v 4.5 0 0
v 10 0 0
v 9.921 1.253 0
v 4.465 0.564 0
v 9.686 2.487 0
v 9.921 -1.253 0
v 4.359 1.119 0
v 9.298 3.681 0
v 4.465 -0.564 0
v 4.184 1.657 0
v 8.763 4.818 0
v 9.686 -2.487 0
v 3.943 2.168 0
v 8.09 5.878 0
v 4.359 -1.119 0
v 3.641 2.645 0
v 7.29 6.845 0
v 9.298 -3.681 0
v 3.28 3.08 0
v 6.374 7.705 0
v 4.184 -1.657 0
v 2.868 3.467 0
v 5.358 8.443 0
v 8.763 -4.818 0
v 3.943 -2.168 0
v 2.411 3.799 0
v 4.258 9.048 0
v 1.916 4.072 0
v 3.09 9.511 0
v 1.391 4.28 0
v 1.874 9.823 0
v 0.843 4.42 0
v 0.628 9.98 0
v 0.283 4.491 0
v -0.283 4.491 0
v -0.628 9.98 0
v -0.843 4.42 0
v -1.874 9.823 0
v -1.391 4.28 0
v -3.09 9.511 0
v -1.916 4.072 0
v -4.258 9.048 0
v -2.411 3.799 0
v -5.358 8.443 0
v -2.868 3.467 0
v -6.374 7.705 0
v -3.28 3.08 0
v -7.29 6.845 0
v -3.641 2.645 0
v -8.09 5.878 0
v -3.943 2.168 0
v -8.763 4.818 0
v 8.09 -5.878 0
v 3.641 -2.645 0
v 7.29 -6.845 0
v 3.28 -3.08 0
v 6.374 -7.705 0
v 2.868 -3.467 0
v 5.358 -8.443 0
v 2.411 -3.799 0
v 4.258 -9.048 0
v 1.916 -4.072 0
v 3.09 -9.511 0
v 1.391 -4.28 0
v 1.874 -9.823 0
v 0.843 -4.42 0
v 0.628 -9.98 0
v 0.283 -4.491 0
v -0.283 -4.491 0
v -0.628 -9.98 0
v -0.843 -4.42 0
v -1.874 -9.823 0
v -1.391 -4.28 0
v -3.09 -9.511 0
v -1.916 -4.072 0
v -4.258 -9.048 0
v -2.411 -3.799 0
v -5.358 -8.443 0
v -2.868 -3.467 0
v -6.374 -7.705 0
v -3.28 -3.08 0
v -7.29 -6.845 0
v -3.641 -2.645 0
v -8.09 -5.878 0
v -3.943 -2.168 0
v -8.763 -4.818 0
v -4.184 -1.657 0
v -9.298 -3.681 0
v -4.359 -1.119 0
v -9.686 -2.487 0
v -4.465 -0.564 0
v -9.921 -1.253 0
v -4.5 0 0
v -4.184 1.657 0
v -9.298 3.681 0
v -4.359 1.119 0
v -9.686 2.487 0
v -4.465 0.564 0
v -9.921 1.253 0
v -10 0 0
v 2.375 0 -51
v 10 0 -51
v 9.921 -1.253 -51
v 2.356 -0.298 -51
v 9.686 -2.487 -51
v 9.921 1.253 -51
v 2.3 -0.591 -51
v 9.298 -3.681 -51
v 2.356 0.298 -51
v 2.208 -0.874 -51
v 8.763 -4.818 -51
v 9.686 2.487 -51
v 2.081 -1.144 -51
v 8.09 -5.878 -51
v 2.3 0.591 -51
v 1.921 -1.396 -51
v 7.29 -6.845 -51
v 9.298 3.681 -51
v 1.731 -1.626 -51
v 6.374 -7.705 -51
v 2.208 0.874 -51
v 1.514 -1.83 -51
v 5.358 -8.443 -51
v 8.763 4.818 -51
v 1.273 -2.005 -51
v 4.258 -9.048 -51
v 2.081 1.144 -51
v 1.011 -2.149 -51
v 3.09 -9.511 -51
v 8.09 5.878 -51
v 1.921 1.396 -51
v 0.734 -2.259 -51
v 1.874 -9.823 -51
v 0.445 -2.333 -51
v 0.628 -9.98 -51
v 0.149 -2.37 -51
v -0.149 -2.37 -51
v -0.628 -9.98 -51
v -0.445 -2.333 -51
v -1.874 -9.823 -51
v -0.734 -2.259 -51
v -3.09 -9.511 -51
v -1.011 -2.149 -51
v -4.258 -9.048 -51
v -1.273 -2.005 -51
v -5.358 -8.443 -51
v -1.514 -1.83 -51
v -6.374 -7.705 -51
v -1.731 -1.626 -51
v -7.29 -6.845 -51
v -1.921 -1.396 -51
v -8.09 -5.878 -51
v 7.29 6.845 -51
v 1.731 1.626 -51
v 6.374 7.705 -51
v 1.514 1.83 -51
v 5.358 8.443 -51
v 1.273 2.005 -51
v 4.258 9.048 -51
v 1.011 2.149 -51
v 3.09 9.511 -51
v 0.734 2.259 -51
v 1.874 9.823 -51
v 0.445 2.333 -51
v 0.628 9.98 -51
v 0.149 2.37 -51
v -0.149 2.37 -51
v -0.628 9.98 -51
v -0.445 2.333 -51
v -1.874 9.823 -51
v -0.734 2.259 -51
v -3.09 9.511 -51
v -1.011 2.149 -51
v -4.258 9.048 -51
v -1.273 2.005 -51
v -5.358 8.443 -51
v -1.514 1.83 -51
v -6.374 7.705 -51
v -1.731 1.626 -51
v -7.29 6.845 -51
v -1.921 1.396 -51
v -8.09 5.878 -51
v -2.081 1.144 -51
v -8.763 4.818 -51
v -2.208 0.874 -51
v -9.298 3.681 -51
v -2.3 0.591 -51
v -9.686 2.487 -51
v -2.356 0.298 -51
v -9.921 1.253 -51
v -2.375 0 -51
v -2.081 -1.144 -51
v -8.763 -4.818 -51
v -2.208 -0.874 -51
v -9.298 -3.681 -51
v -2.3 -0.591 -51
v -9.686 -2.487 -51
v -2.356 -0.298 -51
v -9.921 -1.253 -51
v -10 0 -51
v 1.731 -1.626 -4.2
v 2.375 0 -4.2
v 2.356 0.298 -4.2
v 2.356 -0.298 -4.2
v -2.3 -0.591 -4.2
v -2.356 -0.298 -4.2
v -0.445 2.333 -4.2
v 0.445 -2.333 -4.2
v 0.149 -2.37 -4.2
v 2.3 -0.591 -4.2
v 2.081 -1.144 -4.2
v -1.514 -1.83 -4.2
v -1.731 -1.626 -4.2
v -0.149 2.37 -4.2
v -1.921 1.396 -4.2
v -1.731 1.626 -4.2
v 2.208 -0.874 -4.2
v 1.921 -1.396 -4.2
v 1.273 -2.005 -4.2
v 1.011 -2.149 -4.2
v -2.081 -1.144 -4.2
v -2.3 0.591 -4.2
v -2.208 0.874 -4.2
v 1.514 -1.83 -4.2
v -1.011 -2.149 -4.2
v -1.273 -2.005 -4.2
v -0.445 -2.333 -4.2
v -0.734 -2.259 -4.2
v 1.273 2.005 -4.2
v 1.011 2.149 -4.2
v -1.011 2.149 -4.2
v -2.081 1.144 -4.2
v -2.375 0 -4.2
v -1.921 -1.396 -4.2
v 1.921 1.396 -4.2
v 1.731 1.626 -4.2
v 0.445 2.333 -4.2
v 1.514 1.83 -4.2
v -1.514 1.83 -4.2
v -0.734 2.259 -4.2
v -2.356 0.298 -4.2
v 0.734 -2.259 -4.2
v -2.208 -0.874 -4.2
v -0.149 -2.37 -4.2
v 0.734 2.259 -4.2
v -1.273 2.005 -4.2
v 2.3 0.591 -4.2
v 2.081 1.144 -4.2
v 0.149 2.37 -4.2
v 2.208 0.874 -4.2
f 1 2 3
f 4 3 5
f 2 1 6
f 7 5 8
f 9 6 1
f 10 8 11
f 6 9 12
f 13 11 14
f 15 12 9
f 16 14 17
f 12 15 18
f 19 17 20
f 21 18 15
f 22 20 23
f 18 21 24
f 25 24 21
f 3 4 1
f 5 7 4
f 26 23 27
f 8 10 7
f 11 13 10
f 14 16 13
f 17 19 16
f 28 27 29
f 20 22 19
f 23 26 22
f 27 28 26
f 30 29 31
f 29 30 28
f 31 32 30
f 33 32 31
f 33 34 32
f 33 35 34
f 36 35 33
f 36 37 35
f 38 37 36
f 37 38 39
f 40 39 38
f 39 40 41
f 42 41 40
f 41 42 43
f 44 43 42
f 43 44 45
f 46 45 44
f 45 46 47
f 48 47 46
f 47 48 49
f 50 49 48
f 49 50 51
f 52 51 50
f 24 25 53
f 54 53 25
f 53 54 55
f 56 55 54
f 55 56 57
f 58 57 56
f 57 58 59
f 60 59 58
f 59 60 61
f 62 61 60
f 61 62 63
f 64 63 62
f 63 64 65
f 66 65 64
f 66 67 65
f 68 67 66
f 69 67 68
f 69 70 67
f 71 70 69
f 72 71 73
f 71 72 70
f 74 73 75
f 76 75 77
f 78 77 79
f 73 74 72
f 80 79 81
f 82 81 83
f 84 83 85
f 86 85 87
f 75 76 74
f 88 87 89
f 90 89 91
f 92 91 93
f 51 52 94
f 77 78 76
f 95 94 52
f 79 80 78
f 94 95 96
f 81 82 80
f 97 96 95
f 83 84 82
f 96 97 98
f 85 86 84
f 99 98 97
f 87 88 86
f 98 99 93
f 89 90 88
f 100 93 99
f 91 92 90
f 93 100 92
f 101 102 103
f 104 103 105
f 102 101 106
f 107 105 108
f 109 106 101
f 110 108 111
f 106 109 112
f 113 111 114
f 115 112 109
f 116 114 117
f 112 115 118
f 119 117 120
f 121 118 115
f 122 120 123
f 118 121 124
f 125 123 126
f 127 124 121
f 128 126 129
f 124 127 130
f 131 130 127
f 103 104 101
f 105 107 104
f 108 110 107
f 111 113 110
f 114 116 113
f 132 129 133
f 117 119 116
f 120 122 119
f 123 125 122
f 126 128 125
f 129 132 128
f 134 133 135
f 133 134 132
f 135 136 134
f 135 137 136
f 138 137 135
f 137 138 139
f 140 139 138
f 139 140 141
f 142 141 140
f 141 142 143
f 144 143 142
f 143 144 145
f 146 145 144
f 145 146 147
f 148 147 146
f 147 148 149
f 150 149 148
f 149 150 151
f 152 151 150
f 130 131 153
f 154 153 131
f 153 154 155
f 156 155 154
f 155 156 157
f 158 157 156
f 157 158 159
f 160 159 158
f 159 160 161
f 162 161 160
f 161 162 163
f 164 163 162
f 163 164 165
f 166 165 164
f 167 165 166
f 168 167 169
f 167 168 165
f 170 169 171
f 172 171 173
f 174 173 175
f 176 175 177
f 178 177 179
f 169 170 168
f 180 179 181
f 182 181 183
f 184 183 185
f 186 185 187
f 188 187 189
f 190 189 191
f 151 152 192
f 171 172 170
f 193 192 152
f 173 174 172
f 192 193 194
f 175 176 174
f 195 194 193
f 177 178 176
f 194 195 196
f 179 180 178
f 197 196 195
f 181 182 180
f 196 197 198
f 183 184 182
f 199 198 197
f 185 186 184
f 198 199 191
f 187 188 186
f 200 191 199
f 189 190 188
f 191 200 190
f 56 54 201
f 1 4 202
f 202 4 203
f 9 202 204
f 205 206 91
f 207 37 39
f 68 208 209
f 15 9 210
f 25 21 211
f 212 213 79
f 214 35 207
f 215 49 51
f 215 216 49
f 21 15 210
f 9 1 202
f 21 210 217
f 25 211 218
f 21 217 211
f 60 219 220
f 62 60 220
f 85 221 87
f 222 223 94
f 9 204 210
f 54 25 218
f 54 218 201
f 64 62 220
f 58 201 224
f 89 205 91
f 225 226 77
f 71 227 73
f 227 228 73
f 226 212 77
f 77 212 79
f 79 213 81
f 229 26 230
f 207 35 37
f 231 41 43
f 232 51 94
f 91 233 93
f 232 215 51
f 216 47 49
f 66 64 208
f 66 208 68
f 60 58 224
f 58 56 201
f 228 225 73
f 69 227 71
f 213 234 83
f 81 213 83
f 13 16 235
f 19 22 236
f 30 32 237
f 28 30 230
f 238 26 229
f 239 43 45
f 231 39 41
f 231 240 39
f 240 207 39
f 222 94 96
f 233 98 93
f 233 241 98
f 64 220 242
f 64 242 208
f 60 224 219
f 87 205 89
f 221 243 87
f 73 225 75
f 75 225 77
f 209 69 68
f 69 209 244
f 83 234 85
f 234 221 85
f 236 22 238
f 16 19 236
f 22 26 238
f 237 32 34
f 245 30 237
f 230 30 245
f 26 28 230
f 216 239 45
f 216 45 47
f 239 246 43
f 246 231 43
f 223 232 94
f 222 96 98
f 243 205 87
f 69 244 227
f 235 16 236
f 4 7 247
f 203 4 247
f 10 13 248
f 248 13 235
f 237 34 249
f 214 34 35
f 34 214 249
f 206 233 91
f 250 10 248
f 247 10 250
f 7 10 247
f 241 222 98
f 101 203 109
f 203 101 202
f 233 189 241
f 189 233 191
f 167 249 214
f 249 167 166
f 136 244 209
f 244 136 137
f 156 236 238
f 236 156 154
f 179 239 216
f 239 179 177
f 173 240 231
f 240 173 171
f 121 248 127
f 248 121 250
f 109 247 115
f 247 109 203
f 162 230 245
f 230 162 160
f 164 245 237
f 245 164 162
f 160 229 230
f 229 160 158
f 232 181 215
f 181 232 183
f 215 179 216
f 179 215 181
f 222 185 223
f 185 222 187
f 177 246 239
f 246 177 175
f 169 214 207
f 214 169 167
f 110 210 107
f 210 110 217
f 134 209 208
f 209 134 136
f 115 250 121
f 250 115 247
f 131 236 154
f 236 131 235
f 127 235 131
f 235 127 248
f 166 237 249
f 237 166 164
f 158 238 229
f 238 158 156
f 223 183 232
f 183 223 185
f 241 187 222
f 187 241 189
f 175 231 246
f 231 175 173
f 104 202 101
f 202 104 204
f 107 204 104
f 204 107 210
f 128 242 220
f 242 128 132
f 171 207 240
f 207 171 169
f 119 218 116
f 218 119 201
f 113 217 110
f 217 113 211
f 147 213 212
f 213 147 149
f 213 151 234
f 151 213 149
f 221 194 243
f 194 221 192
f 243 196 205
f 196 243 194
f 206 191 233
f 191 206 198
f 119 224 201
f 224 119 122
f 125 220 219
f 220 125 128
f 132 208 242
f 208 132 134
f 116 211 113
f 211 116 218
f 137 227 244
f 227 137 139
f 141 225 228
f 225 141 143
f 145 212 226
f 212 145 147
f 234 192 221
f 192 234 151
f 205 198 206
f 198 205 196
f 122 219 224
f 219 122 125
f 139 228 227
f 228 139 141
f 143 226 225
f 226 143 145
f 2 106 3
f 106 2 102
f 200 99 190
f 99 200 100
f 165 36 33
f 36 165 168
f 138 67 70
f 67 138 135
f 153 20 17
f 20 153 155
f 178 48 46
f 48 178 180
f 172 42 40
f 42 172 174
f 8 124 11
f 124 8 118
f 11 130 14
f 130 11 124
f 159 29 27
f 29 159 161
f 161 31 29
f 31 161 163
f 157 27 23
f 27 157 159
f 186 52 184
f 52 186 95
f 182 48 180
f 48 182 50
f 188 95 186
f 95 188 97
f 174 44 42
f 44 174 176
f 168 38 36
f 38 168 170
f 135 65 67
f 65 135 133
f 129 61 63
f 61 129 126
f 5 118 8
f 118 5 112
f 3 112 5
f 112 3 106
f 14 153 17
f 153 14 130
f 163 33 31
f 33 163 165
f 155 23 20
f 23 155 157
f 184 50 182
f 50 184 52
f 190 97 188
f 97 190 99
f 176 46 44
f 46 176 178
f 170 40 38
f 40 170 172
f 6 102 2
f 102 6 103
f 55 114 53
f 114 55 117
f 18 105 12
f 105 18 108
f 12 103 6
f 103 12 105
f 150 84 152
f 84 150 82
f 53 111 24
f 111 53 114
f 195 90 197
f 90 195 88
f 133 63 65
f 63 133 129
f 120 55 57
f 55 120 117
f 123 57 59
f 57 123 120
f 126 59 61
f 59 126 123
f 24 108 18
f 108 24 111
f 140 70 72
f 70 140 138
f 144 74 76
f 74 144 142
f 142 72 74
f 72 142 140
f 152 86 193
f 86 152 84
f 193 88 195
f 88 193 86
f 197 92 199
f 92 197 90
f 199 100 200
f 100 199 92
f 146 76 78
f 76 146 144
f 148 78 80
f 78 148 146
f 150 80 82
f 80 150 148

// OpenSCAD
$fn = 50;


difference() {
	union() {
		translate(v = [0, 0, -51.0000000000]) {
			cylinder(h = 51, r = 10.0000000000);
		}
		cylinder(h = 0, r = 13.0000000000);
	}
	union() {
		translate(v = [0, 0, 0]) {
			rotate(a = [0, 0, 0]) {
				difference() {
					union() {
						#translate(v = [0, 0, -51.0000000000]) {
							cylinder(h = 51, r = 2.2500000000);
						}
						#translate(v = [0, 0, -4.2000000000]) {
							cylinder(h = 4.2000000000, r1 = 2.3750000000, r2 = 4.5000000000);
						}
						#translate(v = [0, 0, -51.0000000000]) {
							cylinder(h = 51, r = 2.3750000000);
						}
						#translate(v = [0, 0, -51.0000000000]) {
							cylinder(h = 51, r = 2.2500000000);
						}
					}
					union();
				}
			}
		}
	}
}
